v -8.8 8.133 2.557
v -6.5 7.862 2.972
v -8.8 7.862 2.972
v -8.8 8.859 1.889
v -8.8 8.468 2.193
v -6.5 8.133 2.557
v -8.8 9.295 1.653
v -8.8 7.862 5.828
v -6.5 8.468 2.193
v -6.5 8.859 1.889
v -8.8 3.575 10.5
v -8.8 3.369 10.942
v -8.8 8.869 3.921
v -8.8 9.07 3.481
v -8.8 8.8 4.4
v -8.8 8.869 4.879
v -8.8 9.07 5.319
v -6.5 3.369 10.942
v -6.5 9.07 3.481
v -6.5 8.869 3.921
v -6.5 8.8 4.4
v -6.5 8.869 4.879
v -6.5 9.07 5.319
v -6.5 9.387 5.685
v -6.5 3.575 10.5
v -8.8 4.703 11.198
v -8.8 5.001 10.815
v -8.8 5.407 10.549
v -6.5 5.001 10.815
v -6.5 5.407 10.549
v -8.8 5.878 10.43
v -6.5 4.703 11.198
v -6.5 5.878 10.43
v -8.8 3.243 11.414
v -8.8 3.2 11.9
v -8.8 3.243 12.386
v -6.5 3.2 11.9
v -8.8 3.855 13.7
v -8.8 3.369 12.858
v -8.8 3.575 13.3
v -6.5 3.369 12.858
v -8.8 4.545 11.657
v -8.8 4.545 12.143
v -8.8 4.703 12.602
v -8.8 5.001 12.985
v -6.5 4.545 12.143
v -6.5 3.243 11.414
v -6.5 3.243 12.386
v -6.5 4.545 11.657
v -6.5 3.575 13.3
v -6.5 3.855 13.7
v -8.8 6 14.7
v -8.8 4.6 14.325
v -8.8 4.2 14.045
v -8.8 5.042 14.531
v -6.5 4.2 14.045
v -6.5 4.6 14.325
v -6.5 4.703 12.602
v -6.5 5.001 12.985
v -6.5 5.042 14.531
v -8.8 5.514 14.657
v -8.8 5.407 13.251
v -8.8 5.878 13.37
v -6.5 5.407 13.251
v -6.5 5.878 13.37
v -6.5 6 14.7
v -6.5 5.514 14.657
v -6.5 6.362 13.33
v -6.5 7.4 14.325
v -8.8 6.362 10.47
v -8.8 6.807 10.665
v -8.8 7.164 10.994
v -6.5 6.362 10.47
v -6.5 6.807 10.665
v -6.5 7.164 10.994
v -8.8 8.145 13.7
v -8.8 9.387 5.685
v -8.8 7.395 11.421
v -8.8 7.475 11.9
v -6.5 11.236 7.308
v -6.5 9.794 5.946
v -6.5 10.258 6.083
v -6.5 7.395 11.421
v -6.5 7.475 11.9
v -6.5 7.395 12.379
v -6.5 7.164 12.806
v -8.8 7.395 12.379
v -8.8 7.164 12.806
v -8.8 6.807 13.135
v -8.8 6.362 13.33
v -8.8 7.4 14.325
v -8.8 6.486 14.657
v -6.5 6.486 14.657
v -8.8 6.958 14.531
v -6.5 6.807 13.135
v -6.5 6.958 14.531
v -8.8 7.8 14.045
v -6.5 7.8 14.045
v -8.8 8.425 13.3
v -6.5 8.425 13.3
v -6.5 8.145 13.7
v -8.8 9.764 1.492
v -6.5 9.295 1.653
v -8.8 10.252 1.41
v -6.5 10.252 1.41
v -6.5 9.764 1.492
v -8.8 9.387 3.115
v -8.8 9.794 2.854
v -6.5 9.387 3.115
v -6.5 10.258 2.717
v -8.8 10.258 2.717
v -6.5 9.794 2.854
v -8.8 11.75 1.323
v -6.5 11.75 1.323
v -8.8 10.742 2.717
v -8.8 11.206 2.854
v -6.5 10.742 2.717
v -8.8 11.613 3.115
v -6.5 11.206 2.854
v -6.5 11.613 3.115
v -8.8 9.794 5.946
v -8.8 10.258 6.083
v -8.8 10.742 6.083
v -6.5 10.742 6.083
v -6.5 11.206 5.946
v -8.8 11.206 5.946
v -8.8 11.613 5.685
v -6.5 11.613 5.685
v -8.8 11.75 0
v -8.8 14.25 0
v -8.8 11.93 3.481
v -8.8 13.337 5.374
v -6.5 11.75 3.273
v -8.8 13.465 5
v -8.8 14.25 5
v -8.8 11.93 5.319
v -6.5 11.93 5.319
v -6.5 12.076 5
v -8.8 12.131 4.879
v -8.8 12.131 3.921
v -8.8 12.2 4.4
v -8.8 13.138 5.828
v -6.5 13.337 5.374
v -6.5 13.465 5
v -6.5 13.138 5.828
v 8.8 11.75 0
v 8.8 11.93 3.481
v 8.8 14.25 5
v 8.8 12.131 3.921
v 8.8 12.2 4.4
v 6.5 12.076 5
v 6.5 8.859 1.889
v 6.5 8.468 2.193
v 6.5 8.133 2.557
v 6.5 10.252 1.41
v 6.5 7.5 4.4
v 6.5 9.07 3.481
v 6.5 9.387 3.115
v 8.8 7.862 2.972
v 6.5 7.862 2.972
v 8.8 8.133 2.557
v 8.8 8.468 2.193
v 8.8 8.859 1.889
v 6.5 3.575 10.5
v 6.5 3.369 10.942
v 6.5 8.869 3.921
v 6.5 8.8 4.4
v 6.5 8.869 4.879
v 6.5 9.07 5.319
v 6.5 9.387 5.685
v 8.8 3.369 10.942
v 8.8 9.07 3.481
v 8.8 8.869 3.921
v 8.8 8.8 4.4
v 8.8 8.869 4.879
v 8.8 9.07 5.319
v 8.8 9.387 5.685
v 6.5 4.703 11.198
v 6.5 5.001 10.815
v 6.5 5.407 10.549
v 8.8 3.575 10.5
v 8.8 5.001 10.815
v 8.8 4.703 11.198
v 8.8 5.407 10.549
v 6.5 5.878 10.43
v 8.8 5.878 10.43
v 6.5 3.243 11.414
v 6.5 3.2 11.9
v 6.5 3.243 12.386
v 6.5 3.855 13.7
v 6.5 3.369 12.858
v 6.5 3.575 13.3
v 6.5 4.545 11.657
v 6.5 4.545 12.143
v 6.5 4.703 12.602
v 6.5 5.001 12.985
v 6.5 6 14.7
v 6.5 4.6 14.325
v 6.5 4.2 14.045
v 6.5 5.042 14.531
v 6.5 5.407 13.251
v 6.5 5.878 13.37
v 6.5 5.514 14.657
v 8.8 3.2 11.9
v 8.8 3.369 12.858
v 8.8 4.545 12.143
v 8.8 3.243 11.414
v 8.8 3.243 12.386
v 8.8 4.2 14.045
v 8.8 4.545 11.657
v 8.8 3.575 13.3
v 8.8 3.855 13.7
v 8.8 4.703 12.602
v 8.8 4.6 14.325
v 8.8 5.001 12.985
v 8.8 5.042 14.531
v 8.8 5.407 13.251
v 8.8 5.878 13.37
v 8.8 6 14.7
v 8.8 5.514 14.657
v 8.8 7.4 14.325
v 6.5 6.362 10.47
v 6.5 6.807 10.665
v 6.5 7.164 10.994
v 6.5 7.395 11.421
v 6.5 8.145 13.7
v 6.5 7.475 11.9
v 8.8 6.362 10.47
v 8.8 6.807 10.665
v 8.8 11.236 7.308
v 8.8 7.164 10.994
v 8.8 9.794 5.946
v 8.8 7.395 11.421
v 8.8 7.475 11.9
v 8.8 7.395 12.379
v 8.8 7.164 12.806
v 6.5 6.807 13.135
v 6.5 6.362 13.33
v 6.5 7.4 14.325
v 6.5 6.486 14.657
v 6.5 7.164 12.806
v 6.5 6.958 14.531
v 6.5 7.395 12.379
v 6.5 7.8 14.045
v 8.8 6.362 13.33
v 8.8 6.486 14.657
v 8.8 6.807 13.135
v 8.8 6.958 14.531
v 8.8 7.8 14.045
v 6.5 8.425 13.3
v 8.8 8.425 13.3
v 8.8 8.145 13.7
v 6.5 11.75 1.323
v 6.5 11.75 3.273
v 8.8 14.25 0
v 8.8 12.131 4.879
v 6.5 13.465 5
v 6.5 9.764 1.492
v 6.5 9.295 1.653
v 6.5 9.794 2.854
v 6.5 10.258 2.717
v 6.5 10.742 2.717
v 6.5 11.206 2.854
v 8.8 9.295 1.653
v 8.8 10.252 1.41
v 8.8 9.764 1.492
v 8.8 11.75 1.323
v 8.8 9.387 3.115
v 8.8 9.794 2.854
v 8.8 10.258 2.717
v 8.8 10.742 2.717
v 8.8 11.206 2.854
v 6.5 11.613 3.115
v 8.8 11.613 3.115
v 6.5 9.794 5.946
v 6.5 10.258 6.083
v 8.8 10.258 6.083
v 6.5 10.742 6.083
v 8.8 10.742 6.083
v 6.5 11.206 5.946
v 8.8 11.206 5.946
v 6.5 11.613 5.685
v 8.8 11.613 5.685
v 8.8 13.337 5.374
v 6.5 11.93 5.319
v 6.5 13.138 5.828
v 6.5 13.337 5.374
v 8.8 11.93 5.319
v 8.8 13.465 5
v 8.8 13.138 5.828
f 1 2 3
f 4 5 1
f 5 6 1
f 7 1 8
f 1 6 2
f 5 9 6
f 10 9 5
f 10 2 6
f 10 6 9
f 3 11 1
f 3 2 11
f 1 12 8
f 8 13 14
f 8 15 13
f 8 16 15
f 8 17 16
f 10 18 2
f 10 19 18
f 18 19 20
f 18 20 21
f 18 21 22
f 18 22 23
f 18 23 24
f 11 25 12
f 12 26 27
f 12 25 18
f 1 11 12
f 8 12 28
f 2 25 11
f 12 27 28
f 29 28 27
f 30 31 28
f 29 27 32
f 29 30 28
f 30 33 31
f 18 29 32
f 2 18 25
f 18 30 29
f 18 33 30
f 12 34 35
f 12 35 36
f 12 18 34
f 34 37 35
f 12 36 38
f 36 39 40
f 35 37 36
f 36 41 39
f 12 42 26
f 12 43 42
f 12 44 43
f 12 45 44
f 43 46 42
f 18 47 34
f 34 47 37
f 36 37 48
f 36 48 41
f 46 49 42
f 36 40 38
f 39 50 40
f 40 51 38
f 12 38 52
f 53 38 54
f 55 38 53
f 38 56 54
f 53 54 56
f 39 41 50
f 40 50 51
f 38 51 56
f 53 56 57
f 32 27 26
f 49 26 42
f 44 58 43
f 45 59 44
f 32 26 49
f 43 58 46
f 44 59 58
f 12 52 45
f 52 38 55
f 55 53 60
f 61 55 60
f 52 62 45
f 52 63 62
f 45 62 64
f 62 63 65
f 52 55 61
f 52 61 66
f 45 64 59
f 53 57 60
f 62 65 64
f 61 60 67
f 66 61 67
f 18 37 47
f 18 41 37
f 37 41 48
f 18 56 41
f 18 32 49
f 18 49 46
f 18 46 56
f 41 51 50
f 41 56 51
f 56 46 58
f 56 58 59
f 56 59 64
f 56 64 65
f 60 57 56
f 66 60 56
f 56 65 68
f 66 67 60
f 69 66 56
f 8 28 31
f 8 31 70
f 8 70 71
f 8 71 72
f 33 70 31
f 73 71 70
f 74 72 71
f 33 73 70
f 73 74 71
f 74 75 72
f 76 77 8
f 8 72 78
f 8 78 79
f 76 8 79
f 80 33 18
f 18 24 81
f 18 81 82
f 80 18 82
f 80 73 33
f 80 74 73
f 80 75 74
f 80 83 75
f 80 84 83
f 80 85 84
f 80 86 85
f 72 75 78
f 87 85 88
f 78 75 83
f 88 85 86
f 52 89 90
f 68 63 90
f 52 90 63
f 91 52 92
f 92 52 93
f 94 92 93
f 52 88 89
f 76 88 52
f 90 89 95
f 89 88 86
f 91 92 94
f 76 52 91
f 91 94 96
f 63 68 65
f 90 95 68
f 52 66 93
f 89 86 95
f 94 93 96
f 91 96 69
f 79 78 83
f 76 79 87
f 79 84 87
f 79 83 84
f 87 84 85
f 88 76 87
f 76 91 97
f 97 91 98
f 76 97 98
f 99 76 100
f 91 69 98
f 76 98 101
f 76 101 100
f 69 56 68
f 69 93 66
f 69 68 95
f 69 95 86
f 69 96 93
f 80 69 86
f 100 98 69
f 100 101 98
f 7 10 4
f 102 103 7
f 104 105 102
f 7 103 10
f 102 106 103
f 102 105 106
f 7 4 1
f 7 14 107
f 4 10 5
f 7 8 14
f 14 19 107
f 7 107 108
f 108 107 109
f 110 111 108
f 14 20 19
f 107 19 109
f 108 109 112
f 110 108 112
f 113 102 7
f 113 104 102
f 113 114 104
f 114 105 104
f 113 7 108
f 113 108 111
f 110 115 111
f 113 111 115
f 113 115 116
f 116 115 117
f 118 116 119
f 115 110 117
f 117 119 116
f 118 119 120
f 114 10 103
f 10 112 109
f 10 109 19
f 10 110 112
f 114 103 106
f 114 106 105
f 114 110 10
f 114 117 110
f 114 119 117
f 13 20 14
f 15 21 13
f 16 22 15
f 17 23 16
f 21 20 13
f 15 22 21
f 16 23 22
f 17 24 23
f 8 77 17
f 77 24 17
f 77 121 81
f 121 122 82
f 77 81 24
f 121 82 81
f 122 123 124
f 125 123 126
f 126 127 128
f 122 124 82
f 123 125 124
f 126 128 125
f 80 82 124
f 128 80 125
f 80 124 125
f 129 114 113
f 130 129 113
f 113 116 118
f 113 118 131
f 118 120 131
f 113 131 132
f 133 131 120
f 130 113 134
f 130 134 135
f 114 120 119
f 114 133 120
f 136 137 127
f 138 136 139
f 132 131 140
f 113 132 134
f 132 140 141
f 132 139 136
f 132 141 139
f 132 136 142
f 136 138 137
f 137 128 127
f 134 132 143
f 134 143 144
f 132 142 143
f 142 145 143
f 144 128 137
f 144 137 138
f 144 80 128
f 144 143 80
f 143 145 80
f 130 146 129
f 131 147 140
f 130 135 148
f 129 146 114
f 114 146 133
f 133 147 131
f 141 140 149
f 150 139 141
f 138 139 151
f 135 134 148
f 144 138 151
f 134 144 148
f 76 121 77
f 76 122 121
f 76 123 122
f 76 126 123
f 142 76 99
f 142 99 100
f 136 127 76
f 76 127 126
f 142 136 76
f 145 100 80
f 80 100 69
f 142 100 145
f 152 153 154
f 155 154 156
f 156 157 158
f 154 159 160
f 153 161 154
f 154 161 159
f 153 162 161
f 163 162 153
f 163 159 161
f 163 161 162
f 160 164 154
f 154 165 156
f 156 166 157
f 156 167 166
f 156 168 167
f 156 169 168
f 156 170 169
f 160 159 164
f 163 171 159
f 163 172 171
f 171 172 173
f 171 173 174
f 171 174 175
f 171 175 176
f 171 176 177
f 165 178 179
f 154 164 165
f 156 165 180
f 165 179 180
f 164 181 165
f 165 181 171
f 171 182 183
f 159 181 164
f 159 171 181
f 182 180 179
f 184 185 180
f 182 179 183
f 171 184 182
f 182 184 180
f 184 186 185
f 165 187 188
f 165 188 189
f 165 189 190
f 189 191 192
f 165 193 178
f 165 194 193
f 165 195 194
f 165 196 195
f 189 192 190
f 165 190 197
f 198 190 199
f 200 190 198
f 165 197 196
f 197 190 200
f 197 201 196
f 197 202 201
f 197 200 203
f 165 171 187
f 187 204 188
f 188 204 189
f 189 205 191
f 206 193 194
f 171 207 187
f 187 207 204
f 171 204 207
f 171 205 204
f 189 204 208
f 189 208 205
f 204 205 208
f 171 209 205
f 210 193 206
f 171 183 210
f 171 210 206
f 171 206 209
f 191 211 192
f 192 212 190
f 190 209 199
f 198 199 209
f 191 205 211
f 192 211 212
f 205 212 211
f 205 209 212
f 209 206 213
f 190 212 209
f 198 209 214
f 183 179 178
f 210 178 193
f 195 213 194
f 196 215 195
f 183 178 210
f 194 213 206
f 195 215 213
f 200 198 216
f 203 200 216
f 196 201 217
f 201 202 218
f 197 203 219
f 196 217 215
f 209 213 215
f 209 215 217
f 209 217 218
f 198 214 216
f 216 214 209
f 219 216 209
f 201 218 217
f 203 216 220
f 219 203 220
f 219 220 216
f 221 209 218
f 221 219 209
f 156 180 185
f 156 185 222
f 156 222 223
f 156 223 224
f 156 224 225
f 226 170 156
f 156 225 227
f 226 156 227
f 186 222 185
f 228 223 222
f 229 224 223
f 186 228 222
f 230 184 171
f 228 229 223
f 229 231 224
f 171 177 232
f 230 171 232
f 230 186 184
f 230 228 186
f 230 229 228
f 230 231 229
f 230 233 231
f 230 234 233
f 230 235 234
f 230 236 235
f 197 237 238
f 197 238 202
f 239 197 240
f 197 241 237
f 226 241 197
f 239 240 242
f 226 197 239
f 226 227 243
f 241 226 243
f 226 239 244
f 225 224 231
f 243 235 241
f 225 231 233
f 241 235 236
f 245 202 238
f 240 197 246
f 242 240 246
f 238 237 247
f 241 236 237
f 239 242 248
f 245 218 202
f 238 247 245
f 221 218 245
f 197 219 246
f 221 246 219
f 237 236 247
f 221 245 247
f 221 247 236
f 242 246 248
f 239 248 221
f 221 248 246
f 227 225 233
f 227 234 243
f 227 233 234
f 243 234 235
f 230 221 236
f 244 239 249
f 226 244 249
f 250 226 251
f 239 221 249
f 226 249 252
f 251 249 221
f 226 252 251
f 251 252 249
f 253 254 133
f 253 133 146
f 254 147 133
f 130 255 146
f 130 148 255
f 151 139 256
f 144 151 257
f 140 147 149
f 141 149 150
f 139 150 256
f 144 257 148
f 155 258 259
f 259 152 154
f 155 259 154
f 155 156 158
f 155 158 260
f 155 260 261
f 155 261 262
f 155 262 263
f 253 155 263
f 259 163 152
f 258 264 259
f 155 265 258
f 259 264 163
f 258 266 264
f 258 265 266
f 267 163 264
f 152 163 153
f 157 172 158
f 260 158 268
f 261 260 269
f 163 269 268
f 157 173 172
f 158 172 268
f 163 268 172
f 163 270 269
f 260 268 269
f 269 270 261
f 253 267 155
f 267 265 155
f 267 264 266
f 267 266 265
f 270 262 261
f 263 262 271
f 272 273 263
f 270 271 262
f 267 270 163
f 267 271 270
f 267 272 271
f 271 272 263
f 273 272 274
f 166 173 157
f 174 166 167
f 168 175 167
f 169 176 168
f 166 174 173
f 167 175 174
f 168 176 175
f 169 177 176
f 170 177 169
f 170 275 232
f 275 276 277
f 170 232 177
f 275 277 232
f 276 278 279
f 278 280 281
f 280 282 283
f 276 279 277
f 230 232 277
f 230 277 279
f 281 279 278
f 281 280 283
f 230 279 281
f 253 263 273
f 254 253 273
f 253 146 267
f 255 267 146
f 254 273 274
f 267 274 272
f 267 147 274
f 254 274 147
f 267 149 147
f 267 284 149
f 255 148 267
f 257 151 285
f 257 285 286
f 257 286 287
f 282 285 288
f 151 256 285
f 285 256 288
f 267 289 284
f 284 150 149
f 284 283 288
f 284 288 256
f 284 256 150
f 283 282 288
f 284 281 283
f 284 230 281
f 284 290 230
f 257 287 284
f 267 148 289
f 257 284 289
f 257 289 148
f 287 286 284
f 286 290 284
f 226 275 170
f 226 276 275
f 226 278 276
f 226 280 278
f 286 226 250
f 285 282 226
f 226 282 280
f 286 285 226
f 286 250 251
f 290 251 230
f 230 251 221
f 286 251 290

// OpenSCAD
// file: lib/lib.scad
// Shared helpers. Include AFTER params.scad (needs TOL, M3_* etc.).
$fa = 4; $fs = 0.5;

module rrect(size, r) {            // 2D rounded rectangle, centred
    r2 = min(r, min(size[0], size[1]) / 2 - 0.001);
    offset(r = r2) square([size[0] - 2 * r2, size[1] - 2 * r2], center = true);
}
module rbox(size, r, center_xy = true) {   // box with rounded vertical edges
    translate(center_xy ? [0, 0, 0] : [size[0] / 2, size[1] / 2, 0])
        linear_extrude(size[2]) rrect([size[0], size[1]], r);
}
module rbox_at(x0, x1, y0, y1, z0, z1, r = 0.01) {
    translate([(x0 + x1) / 2, (y0 + y1) / 2, z0]) rbox([x1 - x0, y1 - y0, z1 - z0], r);
}
module box_at(x0, x1, y0, y1, z0, z1) { translate([x0, y0, z0]) cube([x1 - x0, y1 - y0, z1 - z0]); }

module ring(ro, ri, h) { difference() { cylinder(r = ro, h = h); translate([0, 0, -1]) cylinder(r = ri, h = h + 2); } }
module ring_sector(ro, ri, h, a0, a1) {
    intersection() {
        ring(ro, ri, h);
        linear_extrude(h) polygon(concat([[0, 0]], [for (a = [a0 : (a1 - a0) / 24 : a1]) 2 * ro * [cos(a), sin(a)]]));
    }
}
// teardrop hole along an axis lying horizontal (axis = Y after rotation), printable w/o support
module teardrop2d(d) { union() { circle(d = d); rotate(45) square(d / 2); } }
// vertical heat-set insert hole, opening at z=0 going +z (depth l)
module insert_hole(l = M3_INSERT_L) { translate([0, 0, -EPS]) cylinder(d = M3_INSERT_D, h = l + EPS); }
module m3_clear(l) { translate([0, 0, -EPS]) cylinder(d = M3_CLEAR, h = l + 2 * EPS); }
module m3_csk(l) {  // countersunk clearance from z=0 upward, head at z=0 side
    translate([0, 0, -EPS]) { cylinder(d = M3_CLEAR, h = l + 2 * EPS); cylinder(d1 = 6.4, d2 = M3_CLEAR, h = 1.7); }
}
module card2d() { rrect([CARD_L, CARD_W], CARD_R); }
module card_at(cy, z) { translate([0, cy, z]) linear_extrude(CARD_T) card2d(); }

// ---- gears ----
function _inv(a) = tan(a) - a * PI_ / 180;           // involute function, a in deg
function _invpt(rb, r, ang0, s) = let(al = acos(rb / r), th = ang0 - s * (_inv(al) * 180 / PI_)) [r * cos(th), r * sin(th)];
module involute_gear2d(m, z, pa = 20, clearance = 0.05) {
    rp = m * z / 2; rb = rp * cos(pa); ra = rp + m - clearance; rf = rp - 1.25 * m;
    half = 90 / z + _inv(pa) * 180 / PI_;            // tooth half-angle at base (deg)
    n = 8;
    rs = [for (i = [0 : n]) max(rb, rf) + (ra - max(rb, rf)) * i / n];
    union() {
        circle(r = rf, $fn = z * 4);
        for (k = [0 : z - 1]) rotate(k * 360 / z) polygon(concat(
            [[rf * cos(-half), rf * sin(-half)]],
            [for (r = rs) let(p = _invpt(rb, r, half, 1)) [p[0], -p[1]]],
            [for (i = [n : -1 : 0]) _invpt(rb, rs[i], half, 1)],
            [[rf * cos(half), rf * sin(half)]]));
    }
}
// straight gear rack (2D in XY: teeth along +x, pointing -y, pitch line at y=0)
module gear_rack2d(m, len, back = 3) {
    p = PI_ * m; ad = m; de = 1.25 * m; t = tan(20);
    n = ceil(len / p) + 1;
    intersection() {
        union() {
            translate([0, de]) square([len, back]);
            for (i = [0 : n]) if (i * p - p / 4 - (p / 4 + de * t) >= 0 && i * p + de * t <= len) translate([i * p - p / 4, 0]) polygon([
                [-(p / 4 + de * t), de + 0.01], [p / 4 + de * t + 0.01, de + 0.01],
                [p / 4 - ad * t, -ad], [-(p / 4 - ad * t), -ad] ]);
        }
        translate([0, -ad - 1]) square([len, ad + de + back + 2]);
    }
}
// GT2 belt-tooth profile ring (teeth outward), 2D
module gt2_ring2d(n, r_land, ri) {
    union() {
        difference() { circle(r = r_land + 0.01, $fn = n * 2); circle(r = ri, $fn = n * 2); }
        for (k = [0 : n - 1]) rotate(k * 360 / n)
            translate([r_land, 0]) hull() { translate([-0.2, 0]) square([0.2, 1.0], center = true); translate([0.25, 0]) circle(r = 0.5, $fn = 12); }
    }
}
// main file
// Idler bell-crank: carries the 12 mm idler roller; a 5 mm spring pushes the lever
// end down so the idler presses the card up against the drive wheel.
// Print: standing on the lever-end face (Y vertical), holes horizontal, no supports.
include <params.scad>
include <lib/lib.scad>
e = Z_EJECT;
module idl_pt(p) translate([0, p[0], e + p[1]]) rotate([0, 90, 0]) children();
module idler_arm() difference() {
    union() {
        for (s = [-1, 1]) translate([s * 7.65, 0, 0]) {
            hull() { idl_pt(IDL_A) cylinder(r = 2.8, h = 2.3, center = true); idl_pt(IDL_P) cylinder(r = 3.0, h = 2.3, center = true); }
            hull() { idl_pt(IDL_P) cylinder(r = 3.0, h = 2.3, center = true); idl_pt(IDL_L) cylinder(r = 1.25, h = 2.3, center = true); }
        }
        translate([0, IDL_L[0], e + IDL_L[1]]) box_at(-8.8, 8.8, -2.5, 2.5, -1.25, 1.25);
    }
    idl_pt(IDL_A) cylinder(d = fit_press(SHAFT_D), h = 30, center = true);
    idl_pt(IDL_P) cylinder(d = fit_free(SHAFT_D), h = 30, center = true);
}
module idler_arm_print() rotate([90, 0, 0]) translate([0, -(IDL_L[0] - 2.5), -e]) idler_arm();
idler_arm_print();
